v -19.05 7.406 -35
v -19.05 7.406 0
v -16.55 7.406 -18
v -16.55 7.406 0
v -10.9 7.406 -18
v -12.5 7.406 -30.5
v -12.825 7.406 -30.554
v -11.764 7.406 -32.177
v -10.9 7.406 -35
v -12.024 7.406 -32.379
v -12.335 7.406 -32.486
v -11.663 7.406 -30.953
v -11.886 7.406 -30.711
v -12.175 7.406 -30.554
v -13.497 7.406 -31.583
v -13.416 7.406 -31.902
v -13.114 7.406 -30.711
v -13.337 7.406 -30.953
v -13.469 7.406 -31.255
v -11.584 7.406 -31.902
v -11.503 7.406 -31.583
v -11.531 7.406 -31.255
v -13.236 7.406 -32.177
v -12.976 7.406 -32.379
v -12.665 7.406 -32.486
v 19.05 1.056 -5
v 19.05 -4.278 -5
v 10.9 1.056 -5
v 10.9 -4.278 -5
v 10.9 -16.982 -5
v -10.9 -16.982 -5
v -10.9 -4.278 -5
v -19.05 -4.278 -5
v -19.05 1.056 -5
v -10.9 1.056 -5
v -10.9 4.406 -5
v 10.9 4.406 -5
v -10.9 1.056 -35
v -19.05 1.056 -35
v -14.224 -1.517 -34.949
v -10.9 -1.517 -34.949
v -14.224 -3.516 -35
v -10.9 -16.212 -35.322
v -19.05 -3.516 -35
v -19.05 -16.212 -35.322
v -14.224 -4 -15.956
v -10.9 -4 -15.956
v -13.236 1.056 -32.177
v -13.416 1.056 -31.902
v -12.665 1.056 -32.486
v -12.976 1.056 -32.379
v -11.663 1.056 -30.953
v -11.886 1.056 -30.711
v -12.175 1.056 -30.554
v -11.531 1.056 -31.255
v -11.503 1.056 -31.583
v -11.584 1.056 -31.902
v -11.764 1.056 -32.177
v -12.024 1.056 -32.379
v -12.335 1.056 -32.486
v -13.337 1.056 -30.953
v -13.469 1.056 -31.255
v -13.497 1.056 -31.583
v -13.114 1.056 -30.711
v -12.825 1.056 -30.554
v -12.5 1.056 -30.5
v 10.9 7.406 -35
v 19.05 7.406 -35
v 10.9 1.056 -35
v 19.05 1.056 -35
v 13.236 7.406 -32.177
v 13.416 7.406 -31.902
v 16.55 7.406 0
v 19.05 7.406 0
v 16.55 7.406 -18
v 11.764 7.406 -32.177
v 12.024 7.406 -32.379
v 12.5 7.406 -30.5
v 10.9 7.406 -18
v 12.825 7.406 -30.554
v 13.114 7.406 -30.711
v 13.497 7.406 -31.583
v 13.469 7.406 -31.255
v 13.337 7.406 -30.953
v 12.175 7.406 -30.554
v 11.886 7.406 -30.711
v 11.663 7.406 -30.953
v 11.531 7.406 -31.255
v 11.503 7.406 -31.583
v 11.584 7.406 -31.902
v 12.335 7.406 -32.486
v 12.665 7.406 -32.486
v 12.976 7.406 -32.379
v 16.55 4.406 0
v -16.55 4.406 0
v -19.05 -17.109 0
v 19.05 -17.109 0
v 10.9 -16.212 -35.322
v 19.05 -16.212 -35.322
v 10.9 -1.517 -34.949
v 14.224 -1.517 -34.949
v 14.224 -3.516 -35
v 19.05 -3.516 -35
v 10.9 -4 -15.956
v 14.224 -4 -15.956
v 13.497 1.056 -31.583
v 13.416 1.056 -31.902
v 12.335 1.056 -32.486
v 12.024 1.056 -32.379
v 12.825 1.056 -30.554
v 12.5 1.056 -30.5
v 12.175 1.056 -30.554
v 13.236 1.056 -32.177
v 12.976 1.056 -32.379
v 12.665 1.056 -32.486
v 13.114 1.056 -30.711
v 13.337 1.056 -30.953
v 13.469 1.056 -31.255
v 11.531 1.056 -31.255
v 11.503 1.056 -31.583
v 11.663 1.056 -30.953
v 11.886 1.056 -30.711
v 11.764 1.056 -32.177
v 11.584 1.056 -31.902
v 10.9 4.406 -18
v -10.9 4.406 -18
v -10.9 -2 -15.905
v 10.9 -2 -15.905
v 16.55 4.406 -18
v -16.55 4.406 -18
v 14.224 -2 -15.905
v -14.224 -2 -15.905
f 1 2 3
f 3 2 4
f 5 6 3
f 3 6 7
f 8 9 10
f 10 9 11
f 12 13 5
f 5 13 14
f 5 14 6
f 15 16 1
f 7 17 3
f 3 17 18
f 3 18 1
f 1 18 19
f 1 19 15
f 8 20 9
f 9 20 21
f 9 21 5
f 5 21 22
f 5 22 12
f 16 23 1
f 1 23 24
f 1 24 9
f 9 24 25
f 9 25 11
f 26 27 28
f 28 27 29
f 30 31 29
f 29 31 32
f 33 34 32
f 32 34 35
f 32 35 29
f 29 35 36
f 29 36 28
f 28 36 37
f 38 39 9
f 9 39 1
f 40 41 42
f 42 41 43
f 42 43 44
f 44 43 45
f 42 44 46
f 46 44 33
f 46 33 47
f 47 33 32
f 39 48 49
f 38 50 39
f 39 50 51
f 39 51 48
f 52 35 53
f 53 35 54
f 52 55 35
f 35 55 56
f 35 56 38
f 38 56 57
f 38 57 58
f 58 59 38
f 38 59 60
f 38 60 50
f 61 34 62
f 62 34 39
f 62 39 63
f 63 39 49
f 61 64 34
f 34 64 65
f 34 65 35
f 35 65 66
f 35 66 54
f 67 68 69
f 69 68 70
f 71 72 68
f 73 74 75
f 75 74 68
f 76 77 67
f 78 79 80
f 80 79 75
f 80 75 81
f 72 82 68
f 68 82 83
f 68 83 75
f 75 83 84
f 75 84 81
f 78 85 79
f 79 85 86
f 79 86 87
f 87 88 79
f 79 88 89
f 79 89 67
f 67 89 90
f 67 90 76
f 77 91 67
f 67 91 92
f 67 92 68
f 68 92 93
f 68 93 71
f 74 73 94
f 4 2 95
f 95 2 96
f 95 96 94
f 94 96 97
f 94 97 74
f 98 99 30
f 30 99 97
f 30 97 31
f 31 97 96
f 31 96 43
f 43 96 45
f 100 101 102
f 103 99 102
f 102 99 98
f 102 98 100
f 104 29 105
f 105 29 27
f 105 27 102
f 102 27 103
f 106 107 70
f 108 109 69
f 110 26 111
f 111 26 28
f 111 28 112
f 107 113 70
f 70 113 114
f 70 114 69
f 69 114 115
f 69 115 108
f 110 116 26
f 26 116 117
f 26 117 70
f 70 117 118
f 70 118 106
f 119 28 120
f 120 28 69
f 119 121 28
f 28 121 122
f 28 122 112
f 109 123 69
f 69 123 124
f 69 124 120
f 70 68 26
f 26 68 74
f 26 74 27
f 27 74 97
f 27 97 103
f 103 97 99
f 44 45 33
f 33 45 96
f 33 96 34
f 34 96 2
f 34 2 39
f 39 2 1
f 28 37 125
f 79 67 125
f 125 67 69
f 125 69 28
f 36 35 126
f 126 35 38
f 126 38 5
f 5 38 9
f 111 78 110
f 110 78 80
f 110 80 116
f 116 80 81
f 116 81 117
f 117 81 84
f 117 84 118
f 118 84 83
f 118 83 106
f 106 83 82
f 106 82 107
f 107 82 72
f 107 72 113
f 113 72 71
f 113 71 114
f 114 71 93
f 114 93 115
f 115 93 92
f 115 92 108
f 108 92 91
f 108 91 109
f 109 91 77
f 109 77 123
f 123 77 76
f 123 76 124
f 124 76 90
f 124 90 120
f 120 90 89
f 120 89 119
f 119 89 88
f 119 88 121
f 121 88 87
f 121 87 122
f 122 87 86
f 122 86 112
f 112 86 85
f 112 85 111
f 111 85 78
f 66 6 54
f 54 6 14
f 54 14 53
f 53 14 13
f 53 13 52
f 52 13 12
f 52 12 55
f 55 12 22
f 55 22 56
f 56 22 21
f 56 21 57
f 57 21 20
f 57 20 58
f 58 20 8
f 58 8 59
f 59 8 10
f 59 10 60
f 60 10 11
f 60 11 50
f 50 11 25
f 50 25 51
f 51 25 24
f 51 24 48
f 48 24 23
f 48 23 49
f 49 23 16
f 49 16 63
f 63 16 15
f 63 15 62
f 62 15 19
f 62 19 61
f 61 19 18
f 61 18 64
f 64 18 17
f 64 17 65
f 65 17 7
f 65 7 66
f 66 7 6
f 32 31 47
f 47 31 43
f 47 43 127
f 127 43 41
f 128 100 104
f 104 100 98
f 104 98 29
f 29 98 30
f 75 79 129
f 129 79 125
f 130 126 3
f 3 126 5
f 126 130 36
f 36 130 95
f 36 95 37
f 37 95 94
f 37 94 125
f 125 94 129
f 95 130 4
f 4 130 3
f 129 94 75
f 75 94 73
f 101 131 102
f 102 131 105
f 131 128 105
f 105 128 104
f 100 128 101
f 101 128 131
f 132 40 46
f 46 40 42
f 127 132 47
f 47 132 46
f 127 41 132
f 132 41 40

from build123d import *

# Parameters (mm, degrees)
BOSS_EXTRUDE1_DEPTH      = 19.05
SKETCH2_R                = 1
SKETCH2_W                = 21.8000072
SKETCH2_H                = 32.97884159
CUT_EXTRUDE1_DEPTH       = 25.515096105
SKETCH3_W                = 33.10001
SKETCH3_H                = 18
CUT_EXTRUDE2_DEPTH       = 3
SKETCH4_W                = 3.3239964
SKETCH4_H                = 19.05
BOSS_EXTRUDE2_DEPTH      = 2
BOSS_EXTRUDE2_DEPTH_BACK = 12.7


with BuildPart() as part:
    # Sketch1 → Boss-Extrude1 (new body, symmetric)
    with BuildSketch(Plane(origin=(0, 0, 0), x_dir=(0, 0, -1), z_dir=(1, 0, 0))):
        Polygon((35, 1.055980791), (35, 7.405980791), (0, 7.405980791), (0, -7.405980791), (35.076175279, -6.515045939), (35, -3.516019209), (5, -4.278019209), (5, 1.055980791), align=None)
        Polygon((0, -17.109115314), (35.322475992, -16.211924424), (35.076175279, -6.515045939), (0, -7.405980791), align=None)
    extrude(amount=BOSS_EXTRUDE1_DEPTH, both=True)

    # Sketch2 → Cut-Extrude1 (cut, through all)
    with BuildSketch(Plane(origin=(0, 7.405980791, 0), x_dir=(1, 0, 0), z_dir=(0, 1, 0))):
        with Locations((-12.5, 31.5)):
            Circle(SKETCH2_R)
        with Locations((12.5, 31.5)):
            Circle(SKETCH2_R)
        with Locations((0, 21.489420795)):
            Rectangle(SKETCH2_W, SKETCH2_H)
    extrude(amount=-CUT_EXTRUDE1_DEPTH, mode=Mode.SUBTRACT)

    # Sketch3 → Cut-Extrude2 (cut)
    with BuildSketch(Plane(origin=(0, 7.405980791, 0), x_dir=(1, 0, 0), z_dir=(0, 1, 0))):
        with Locations((0, 9)):
            Rectangle(SKETCH3_W, SKETCH3_H)
    extrude(amount=-CUT_EXTRUDE2_DEPTH, mode=Mode.SUBTRACT)

    # Sketch4 → Boss-Extrude2 (add, two sides)
    with BuildSketch(Plane(origin=(0, -4.402179099, -0.111815349), x_dir=(1, 0, 0), z_dir=(0, 0.999677576, 0.02539181))) as boss_extrude2_sk:
        with Locations((12.5620018, 25.374437067)):
            Rectangle(SKETCH4_W, SKETCH4_H)
        with Locations((-12.5620018, 25.374437067)):
            Rectangle(SKETCH4_W, SKETCH4_H)
    extrude(amount=BOSS_EXTRUDE2_DEPTH)
    extrude(boss_extrude2_sk.sketch, amount=-BOSS_EXTRUDE2_DEPTH_BACK)


solid = part.part
